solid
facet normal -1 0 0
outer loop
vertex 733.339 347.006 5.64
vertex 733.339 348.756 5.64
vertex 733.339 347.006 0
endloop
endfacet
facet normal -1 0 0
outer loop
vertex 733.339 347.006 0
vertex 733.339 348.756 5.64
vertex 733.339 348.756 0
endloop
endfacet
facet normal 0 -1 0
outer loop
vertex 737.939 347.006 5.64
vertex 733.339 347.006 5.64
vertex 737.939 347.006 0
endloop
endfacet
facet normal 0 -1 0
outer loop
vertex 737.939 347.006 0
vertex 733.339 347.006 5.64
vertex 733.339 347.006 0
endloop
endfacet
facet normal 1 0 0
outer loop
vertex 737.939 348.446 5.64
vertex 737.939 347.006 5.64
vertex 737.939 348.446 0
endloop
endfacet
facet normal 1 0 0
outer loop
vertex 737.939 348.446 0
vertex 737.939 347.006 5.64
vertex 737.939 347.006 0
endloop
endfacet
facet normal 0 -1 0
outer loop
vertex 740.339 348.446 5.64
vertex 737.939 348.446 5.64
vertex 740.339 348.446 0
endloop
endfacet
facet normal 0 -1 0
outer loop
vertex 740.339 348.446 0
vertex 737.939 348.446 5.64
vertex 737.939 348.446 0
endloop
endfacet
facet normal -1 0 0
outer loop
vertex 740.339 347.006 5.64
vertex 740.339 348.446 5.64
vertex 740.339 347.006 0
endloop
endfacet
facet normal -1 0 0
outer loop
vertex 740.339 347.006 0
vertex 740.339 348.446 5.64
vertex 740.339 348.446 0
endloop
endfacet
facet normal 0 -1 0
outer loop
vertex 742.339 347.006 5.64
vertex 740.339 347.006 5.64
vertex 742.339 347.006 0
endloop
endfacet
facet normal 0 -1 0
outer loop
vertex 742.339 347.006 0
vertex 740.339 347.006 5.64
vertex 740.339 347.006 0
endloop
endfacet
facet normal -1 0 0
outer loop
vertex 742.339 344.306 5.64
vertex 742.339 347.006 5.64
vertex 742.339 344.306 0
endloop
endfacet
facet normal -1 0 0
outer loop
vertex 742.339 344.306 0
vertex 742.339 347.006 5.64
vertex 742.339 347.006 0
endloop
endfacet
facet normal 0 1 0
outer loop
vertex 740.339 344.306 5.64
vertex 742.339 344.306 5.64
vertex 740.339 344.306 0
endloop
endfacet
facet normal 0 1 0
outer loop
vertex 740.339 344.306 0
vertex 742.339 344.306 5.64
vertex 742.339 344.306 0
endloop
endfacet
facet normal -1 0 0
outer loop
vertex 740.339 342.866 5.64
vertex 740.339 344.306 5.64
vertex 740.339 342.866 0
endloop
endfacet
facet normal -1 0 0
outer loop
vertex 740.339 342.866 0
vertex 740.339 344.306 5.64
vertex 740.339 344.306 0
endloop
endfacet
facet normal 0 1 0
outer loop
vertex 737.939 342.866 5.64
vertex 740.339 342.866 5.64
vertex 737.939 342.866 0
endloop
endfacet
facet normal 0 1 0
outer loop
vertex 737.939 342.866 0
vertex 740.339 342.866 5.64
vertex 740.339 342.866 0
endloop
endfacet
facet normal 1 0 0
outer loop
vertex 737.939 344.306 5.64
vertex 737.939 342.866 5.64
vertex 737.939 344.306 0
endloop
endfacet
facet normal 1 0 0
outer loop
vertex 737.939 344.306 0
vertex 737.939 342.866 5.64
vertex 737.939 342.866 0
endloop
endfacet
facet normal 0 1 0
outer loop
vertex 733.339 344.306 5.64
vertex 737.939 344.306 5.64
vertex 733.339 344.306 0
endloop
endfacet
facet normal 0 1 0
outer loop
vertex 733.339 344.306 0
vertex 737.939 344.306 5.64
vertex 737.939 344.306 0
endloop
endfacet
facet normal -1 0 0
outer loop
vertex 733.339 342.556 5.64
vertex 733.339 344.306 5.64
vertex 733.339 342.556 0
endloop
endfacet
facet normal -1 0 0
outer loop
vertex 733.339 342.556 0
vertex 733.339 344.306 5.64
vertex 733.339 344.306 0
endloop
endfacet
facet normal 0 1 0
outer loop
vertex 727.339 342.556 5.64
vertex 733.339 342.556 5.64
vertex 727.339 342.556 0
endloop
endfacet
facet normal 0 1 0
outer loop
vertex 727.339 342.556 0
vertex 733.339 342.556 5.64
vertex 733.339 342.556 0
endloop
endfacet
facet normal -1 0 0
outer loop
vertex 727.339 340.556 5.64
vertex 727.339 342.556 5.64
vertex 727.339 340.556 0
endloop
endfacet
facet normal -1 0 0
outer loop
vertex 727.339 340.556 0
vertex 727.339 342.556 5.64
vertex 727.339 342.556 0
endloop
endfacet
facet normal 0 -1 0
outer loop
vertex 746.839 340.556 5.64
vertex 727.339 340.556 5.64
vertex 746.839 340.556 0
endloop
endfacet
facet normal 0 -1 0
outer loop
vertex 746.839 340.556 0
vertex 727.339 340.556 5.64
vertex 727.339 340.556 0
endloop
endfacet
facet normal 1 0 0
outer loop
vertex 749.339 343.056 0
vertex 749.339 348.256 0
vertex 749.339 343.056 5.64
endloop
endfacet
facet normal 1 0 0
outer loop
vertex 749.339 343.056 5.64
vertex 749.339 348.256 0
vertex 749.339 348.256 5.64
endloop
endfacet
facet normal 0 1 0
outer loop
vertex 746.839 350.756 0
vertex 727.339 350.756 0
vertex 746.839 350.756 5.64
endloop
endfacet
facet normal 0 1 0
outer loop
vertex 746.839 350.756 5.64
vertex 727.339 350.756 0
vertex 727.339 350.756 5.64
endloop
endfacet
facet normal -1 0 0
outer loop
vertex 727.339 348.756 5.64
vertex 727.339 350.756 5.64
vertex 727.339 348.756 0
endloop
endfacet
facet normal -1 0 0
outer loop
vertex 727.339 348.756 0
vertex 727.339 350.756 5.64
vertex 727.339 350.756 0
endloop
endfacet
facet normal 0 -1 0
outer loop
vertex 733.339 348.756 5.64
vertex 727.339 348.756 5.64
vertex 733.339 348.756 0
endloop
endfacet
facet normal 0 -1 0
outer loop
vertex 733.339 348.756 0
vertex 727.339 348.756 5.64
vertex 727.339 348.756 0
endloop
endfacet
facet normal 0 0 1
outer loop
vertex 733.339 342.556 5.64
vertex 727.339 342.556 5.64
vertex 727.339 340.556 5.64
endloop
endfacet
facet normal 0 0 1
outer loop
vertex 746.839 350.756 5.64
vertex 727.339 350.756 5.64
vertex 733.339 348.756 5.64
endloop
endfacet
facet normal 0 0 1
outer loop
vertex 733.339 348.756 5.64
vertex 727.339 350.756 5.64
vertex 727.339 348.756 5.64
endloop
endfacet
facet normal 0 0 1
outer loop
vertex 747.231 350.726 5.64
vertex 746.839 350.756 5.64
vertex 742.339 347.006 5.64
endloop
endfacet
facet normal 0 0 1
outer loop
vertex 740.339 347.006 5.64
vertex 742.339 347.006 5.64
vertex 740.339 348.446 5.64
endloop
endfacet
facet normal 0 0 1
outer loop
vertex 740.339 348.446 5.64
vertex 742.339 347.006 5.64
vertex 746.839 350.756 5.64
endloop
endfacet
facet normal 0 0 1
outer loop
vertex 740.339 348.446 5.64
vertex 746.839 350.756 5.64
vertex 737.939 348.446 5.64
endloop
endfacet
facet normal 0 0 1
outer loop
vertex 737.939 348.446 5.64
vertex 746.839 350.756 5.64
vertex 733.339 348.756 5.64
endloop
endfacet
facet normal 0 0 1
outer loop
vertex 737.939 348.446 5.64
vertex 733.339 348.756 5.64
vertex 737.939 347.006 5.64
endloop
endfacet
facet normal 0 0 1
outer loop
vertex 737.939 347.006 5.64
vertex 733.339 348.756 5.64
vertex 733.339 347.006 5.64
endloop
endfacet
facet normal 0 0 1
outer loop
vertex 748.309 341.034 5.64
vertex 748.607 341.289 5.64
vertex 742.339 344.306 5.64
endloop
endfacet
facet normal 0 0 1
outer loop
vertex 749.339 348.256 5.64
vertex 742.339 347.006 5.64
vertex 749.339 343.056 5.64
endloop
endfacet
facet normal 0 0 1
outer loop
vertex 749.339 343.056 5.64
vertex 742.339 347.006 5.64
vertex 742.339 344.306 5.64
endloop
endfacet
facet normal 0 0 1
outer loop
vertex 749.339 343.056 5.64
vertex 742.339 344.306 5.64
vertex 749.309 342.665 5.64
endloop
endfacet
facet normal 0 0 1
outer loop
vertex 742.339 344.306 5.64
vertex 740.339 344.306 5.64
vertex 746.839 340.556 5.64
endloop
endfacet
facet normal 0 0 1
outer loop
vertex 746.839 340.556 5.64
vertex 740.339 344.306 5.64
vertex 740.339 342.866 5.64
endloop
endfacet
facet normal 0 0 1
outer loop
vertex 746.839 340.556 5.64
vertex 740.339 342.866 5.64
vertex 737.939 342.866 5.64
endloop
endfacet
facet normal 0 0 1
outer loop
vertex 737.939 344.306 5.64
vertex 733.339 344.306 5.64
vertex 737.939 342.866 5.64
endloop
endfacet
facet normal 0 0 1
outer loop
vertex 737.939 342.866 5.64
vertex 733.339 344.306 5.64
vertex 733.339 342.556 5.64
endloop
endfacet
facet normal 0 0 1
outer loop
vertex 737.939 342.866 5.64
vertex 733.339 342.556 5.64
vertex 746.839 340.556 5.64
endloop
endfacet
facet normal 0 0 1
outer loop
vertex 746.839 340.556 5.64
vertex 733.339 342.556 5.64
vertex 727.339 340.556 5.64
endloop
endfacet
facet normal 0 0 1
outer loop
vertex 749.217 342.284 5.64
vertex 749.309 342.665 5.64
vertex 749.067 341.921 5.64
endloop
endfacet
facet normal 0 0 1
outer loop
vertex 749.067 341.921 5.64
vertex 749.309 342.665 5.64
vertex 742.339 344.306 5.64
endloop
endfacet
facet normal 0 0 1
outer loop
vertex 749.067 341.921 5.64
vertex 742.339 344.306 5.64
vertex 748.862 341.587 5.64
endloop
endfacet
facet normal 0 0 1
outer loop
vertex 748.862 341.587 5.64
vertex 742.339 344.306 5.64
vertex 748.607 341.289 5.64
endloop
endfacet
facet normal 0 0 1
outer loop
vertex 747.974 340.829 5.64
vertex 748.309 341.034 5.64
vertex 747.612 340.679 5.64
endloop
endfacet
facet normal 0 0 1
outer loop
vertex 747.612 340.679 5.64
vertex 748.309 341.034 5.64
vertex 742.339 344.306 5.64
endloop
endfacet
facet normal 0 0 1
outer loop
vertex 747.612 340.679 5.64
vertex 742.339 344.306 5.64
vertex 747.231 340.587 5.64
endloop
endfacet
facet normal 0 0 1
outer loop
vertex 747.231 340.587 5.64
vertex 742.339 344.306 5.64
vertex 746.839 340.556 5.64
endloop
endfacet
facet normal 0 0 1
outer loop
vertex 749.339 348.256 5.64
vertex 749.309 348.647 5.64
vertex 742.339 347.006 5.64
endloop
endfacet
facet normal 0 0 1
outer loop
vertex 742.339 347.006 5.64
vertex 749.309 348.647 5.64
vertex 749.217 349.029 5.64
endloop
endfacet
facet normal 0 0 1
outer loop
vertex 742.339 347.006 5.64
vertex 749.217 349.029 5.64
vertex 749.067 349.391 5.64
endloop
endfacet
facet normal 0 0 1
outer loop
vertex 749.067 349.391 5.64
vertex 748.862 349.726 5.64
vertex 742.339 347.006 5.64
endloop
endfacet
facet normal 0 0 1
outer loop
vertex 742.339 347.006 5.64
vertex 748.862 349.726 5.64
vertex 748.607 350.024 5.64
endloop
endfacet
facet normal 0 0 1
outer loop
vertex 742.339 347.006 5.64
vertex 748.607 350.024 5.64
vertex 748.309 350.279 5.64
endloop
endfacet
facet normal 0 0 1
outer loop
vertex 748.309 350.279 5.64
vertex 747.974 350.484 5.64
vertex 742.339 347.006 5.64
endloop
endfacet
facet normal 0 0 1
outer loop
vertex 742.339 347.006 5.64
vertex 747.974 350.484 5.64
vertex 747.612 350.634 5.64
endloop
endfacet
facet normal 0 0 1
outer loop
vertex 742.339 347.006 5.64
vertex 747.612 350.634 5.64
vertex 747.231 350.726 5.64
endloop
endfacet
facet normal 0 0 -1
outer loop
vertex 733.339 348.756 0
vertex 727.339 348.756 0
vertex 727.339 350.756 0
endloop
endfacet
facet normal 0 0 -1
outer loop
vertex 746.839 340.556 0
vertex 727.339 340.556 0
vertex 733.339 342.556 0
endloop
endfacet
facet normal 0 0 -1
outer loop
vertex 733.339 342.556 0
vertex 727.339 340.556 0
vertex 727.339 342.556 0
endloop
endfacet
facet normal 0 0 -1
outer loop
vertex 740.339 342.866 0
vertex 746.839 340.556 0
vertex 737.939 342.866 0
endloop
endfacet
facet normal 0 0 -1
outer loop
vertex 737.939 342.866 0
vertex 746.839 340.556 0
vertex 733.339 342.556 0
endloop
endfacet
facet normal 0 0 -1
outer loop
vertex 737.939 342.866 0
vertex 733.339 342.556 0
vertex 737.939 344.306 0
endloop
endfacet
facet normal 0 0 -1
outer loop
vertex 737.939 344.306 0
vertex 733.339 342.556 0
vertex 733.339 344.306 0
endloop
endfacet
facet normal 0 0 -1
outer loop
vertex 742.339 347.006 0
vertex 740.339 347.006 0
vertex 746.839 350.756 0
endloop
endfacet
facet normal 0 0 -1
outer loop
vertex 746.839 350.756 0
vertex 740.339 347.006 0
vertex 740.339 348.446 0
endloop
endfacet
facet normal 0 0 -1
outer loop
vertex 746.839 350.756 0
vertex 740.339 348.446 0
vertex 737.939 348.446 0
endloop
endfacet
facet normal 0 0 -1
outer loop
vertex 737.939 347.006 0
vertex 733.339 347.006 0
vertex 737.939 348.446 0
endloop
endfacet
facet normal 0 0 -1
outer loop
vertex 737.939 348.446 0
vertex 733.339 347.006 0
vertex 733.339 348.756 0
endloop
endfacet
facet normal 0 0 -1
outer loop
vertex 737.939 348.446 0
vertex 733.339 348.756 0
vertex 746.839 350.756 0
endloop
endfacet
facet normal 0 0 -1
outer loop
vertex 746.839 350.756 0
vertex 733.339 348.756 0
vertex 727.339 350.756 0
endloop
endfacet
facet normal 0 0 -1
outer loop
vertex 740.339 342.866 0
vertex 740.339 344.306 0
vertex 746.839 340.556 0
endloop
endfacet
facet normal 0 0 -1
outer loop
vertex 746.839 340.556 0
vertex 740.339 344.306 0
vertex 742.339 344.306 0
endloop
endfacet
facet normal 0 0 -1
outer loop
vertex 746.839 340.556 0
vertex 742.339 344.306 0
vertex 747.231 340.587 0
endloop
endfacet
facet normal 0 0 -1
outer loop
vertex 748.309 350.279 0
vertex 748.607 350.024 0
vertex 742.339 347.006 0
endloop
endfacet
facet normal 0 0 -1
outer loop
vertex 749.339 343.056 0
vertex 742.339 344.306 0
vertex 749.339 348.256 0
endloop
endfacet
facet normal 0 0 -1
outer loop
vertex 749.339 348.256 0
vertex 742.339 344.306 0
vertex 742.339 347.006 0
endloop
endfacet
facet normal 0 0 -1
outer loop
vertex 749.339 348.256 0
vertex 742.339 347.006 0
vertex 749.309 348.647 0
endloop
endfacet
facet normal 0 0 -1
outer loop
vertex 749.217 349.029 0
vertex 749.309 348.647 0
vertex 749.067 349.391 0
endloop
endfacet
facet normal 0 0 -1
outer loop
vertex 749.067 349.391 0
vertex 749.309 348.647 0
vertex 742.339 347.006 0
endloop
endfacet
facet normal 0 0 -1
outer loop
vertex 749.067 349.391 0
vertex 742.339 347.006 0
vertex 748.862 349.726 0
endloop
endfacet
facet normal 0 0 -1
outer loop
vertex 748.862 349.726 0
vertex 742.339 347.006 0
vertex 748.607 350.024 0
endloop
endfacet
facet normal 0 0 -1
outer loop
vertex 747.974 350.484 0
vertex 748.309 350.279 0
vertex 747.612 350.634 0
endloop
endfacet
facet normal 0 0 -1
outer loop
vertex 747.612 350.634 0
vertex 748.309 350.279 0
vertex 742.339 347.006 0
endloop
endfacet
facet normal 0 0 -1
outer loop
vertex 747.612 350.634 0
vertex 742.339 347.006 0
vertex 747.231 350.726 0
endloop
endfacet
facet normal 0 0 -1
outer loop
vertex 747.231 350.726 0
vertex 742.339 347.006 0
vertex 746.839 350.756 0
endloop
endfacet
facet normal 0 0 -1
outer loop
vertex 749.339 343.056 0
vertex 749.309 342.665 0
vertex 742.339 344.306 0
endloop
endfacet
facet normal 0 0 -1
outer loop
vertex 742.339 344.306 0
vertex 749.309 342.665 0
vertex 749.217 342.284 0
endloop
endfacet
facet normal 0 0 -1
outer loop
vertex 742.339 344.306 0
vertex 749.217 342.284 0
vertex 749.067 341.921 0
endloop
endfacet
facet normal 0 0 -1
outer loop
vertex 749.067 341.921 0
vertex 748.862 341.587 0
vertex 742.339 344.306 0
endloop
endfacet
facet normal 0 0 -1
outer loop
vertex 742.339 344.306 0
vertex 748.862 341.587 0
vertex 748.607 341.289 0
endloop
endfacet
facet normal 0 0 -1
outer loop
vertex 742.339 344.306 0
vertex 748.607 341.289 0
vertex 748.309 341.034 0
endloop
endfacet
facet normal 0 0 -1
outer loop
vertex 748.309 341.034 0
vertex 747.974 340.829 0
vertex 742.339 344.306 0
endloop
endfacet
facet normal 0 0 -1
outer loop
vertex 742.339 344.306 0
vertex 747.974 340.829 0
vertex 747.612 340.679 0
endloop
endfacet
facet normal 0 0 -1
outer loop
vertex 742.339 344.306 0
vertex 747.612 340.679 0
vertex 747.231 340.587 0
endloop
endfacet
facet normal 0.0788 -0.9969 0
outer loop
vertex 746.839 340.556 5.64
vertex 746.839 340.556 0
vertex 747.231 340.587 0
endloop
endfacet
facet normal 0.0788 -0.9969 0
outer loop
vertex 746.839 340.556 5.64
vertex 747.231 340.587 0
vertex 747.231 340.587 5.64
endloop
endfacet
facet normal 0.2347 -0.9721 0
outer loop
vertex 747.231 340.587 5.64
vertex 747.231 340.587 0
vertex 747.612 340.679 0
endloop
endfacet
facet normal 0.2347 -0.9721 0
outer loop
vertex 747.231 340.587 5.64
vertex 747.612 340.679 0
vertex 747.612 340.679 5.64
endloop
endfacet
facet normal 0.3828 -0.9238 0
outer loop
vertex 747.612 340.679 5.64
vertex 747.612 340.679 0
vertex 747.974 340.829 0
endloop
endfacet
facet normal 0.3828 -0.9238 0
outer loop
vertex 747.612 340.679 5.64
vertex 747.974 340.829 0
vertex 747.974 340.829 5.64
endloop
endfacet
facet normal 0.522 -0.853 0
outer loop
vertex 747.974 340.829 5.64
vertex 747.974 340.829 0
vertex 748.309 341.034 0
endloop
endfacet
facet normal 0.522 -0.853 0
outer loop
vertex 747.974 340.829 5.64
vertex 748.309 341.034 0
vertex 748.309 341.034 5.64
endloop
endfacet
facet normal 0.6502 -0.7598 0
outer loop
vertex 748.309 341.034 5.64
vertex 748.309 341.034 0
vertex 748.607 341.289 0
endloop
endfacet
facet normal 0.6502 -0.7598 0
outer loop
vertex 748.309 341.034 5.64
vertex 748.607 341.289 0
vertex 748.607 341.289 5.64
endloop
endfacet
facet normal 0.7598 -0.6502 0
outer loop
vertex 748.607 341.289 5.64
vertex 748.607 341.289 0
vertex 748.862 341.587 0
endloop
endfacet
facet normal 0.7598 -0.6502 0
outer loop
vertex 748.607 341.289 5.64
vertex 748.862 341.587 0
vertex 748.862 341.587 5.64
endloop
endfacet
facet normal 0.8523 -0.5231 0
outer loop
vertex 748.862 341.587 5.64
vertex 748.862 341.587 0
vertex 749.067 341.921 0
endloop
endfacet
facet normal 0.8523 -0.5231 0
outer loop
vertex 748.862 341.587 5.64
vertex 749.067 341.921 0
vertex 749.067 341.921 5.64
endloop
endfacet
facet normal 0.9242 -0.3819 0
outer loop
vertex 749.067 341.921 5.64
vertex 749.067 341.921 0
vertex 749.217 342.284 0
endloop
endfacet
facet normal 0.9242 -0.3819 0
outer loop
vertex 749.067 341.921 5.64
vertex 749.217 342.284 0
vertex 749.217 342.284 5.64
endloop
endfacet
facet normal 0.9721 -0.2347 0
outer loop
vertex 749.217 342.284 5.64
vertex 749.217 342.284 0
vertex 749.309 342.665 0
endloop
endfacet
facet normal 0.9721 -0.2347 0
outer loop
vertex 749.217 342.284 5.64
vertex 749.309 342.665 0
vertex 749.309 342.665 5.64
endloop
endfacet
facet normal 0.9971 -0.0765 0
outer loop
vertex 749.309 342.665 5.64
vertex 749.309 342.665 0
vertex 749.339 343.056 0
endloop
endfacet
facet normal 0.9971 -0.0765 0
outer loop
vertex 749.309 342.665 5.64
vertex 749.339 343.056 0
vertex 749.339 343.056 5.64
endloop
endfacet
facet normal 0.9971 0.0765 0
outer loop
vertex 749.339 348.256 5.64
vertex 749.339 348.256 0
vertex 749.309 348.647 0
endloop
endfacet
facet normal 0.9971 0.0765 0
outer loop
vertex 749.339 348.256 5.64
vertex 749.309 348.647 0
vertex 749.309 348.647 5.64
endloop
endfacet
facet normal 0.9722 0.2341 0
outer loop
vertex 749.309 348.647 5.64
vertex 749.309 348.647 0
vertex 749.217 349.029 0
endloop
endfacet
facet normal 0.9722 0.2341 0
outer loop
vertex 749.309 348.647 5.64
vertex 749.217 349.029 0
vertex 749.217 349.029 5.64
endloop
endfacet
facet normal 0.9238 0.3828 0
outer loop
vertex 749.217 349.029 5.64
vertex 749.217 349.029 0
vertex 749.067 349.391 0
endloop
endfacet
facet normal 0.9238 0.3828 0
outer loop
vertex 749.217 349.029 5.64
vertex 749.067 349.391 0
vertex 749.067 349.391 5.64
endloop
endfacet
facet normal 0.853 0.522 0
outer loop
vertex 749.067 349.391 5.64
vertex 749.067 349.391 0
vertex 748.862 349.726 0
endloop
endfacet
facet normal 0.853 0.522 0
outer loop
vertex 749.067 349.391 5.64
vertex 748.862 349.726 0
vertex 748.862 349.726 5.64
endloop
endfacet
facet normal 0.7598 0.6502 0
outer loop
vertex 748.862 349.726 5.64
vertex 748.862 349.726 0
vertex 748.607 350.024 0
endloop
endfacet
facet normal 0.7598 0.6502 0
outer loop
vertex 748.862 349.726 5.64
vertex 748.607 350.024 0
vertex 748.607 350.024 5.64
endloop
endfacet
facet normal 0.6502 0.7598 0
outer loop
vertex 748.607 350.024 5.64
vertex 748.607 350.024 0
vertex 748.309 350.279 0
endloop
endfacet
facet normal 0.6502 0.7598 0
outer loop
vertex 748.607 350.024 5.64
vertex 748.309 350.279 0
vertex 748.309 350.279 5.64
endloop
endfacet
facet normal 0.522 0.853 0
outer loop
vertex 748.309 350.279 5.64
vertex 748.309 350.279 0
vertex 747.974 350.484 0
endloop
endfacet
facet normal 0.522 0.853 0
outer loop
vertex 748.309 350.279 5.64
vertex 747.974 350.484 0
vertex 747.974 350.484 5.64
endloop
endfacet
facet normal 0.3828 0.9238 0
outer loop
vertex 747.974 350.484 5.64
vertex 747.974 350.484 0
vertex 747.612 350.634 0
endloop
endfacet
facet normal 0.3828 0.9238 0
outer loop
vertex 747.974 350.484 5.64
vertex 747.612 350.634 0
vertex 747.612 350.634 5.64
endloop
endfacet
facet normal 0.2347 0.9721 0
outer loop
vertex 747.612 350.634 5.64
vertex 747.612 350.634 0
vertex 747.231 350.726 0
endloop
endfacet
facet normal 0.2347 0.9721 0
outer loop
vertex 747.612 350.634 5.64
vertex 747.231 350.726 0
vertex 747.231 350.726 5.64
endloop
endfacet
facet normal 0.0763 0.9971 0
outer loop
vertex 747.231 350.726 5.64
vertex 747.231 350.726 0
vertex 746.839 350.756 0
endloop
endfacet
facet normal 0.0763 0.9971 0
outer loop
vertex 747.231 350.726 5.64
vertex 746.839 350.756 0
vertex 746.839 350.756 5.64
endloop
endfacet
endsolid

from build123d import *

# Parameters (mm, degrees)
BOSS_EXTRUDE2_DEPTH = 5.64
FILLET1_R           = 2.5


with BuildPart() as part:
    # Sketch1 → Boss-Extrude2 (new body)
    with BuildSketch(Plane.XY):
        Polygon((727.33944815, 350.756300382), (749.33944815, 350.756300382), (749.33944815, 340.556300382), (727.33944815, 340.556300382), (727.33944815, 342.556300382), (733.33944815, 342.556300382), (733.33944815, 344.306300382), (737.93944815, 344.306300382), (737.93944815, 342.866300382), (740.33944815, 342.866300382), (740.33944815, 344.306300382), (742.33944815, 344.306300382), (742.33944815, 347.006300382), (740.33944815, 347.006300382), (740.33944815, 348.446300382), (737.93944815, 348.446300382), (737.93944815, 347.006300382), (733.33944815, 347.006300382), (733.33944815, 348.756300382), (727.33944815, 348.756300382), align=None)
    extrude(amount=BOSS_EXTRUDE2_DEPTH)

    # Fillet1
    fillet1_edges = [part.edges().sort_by_distance(p)[0] for p in [
        (749.33944815, 350.756300382, 2.82),
        (749.33944815, 340.556300382, 2.82),
    ]]
    fillet(fillet1_edges, radius=FILLET1_R)


solid = part.part
